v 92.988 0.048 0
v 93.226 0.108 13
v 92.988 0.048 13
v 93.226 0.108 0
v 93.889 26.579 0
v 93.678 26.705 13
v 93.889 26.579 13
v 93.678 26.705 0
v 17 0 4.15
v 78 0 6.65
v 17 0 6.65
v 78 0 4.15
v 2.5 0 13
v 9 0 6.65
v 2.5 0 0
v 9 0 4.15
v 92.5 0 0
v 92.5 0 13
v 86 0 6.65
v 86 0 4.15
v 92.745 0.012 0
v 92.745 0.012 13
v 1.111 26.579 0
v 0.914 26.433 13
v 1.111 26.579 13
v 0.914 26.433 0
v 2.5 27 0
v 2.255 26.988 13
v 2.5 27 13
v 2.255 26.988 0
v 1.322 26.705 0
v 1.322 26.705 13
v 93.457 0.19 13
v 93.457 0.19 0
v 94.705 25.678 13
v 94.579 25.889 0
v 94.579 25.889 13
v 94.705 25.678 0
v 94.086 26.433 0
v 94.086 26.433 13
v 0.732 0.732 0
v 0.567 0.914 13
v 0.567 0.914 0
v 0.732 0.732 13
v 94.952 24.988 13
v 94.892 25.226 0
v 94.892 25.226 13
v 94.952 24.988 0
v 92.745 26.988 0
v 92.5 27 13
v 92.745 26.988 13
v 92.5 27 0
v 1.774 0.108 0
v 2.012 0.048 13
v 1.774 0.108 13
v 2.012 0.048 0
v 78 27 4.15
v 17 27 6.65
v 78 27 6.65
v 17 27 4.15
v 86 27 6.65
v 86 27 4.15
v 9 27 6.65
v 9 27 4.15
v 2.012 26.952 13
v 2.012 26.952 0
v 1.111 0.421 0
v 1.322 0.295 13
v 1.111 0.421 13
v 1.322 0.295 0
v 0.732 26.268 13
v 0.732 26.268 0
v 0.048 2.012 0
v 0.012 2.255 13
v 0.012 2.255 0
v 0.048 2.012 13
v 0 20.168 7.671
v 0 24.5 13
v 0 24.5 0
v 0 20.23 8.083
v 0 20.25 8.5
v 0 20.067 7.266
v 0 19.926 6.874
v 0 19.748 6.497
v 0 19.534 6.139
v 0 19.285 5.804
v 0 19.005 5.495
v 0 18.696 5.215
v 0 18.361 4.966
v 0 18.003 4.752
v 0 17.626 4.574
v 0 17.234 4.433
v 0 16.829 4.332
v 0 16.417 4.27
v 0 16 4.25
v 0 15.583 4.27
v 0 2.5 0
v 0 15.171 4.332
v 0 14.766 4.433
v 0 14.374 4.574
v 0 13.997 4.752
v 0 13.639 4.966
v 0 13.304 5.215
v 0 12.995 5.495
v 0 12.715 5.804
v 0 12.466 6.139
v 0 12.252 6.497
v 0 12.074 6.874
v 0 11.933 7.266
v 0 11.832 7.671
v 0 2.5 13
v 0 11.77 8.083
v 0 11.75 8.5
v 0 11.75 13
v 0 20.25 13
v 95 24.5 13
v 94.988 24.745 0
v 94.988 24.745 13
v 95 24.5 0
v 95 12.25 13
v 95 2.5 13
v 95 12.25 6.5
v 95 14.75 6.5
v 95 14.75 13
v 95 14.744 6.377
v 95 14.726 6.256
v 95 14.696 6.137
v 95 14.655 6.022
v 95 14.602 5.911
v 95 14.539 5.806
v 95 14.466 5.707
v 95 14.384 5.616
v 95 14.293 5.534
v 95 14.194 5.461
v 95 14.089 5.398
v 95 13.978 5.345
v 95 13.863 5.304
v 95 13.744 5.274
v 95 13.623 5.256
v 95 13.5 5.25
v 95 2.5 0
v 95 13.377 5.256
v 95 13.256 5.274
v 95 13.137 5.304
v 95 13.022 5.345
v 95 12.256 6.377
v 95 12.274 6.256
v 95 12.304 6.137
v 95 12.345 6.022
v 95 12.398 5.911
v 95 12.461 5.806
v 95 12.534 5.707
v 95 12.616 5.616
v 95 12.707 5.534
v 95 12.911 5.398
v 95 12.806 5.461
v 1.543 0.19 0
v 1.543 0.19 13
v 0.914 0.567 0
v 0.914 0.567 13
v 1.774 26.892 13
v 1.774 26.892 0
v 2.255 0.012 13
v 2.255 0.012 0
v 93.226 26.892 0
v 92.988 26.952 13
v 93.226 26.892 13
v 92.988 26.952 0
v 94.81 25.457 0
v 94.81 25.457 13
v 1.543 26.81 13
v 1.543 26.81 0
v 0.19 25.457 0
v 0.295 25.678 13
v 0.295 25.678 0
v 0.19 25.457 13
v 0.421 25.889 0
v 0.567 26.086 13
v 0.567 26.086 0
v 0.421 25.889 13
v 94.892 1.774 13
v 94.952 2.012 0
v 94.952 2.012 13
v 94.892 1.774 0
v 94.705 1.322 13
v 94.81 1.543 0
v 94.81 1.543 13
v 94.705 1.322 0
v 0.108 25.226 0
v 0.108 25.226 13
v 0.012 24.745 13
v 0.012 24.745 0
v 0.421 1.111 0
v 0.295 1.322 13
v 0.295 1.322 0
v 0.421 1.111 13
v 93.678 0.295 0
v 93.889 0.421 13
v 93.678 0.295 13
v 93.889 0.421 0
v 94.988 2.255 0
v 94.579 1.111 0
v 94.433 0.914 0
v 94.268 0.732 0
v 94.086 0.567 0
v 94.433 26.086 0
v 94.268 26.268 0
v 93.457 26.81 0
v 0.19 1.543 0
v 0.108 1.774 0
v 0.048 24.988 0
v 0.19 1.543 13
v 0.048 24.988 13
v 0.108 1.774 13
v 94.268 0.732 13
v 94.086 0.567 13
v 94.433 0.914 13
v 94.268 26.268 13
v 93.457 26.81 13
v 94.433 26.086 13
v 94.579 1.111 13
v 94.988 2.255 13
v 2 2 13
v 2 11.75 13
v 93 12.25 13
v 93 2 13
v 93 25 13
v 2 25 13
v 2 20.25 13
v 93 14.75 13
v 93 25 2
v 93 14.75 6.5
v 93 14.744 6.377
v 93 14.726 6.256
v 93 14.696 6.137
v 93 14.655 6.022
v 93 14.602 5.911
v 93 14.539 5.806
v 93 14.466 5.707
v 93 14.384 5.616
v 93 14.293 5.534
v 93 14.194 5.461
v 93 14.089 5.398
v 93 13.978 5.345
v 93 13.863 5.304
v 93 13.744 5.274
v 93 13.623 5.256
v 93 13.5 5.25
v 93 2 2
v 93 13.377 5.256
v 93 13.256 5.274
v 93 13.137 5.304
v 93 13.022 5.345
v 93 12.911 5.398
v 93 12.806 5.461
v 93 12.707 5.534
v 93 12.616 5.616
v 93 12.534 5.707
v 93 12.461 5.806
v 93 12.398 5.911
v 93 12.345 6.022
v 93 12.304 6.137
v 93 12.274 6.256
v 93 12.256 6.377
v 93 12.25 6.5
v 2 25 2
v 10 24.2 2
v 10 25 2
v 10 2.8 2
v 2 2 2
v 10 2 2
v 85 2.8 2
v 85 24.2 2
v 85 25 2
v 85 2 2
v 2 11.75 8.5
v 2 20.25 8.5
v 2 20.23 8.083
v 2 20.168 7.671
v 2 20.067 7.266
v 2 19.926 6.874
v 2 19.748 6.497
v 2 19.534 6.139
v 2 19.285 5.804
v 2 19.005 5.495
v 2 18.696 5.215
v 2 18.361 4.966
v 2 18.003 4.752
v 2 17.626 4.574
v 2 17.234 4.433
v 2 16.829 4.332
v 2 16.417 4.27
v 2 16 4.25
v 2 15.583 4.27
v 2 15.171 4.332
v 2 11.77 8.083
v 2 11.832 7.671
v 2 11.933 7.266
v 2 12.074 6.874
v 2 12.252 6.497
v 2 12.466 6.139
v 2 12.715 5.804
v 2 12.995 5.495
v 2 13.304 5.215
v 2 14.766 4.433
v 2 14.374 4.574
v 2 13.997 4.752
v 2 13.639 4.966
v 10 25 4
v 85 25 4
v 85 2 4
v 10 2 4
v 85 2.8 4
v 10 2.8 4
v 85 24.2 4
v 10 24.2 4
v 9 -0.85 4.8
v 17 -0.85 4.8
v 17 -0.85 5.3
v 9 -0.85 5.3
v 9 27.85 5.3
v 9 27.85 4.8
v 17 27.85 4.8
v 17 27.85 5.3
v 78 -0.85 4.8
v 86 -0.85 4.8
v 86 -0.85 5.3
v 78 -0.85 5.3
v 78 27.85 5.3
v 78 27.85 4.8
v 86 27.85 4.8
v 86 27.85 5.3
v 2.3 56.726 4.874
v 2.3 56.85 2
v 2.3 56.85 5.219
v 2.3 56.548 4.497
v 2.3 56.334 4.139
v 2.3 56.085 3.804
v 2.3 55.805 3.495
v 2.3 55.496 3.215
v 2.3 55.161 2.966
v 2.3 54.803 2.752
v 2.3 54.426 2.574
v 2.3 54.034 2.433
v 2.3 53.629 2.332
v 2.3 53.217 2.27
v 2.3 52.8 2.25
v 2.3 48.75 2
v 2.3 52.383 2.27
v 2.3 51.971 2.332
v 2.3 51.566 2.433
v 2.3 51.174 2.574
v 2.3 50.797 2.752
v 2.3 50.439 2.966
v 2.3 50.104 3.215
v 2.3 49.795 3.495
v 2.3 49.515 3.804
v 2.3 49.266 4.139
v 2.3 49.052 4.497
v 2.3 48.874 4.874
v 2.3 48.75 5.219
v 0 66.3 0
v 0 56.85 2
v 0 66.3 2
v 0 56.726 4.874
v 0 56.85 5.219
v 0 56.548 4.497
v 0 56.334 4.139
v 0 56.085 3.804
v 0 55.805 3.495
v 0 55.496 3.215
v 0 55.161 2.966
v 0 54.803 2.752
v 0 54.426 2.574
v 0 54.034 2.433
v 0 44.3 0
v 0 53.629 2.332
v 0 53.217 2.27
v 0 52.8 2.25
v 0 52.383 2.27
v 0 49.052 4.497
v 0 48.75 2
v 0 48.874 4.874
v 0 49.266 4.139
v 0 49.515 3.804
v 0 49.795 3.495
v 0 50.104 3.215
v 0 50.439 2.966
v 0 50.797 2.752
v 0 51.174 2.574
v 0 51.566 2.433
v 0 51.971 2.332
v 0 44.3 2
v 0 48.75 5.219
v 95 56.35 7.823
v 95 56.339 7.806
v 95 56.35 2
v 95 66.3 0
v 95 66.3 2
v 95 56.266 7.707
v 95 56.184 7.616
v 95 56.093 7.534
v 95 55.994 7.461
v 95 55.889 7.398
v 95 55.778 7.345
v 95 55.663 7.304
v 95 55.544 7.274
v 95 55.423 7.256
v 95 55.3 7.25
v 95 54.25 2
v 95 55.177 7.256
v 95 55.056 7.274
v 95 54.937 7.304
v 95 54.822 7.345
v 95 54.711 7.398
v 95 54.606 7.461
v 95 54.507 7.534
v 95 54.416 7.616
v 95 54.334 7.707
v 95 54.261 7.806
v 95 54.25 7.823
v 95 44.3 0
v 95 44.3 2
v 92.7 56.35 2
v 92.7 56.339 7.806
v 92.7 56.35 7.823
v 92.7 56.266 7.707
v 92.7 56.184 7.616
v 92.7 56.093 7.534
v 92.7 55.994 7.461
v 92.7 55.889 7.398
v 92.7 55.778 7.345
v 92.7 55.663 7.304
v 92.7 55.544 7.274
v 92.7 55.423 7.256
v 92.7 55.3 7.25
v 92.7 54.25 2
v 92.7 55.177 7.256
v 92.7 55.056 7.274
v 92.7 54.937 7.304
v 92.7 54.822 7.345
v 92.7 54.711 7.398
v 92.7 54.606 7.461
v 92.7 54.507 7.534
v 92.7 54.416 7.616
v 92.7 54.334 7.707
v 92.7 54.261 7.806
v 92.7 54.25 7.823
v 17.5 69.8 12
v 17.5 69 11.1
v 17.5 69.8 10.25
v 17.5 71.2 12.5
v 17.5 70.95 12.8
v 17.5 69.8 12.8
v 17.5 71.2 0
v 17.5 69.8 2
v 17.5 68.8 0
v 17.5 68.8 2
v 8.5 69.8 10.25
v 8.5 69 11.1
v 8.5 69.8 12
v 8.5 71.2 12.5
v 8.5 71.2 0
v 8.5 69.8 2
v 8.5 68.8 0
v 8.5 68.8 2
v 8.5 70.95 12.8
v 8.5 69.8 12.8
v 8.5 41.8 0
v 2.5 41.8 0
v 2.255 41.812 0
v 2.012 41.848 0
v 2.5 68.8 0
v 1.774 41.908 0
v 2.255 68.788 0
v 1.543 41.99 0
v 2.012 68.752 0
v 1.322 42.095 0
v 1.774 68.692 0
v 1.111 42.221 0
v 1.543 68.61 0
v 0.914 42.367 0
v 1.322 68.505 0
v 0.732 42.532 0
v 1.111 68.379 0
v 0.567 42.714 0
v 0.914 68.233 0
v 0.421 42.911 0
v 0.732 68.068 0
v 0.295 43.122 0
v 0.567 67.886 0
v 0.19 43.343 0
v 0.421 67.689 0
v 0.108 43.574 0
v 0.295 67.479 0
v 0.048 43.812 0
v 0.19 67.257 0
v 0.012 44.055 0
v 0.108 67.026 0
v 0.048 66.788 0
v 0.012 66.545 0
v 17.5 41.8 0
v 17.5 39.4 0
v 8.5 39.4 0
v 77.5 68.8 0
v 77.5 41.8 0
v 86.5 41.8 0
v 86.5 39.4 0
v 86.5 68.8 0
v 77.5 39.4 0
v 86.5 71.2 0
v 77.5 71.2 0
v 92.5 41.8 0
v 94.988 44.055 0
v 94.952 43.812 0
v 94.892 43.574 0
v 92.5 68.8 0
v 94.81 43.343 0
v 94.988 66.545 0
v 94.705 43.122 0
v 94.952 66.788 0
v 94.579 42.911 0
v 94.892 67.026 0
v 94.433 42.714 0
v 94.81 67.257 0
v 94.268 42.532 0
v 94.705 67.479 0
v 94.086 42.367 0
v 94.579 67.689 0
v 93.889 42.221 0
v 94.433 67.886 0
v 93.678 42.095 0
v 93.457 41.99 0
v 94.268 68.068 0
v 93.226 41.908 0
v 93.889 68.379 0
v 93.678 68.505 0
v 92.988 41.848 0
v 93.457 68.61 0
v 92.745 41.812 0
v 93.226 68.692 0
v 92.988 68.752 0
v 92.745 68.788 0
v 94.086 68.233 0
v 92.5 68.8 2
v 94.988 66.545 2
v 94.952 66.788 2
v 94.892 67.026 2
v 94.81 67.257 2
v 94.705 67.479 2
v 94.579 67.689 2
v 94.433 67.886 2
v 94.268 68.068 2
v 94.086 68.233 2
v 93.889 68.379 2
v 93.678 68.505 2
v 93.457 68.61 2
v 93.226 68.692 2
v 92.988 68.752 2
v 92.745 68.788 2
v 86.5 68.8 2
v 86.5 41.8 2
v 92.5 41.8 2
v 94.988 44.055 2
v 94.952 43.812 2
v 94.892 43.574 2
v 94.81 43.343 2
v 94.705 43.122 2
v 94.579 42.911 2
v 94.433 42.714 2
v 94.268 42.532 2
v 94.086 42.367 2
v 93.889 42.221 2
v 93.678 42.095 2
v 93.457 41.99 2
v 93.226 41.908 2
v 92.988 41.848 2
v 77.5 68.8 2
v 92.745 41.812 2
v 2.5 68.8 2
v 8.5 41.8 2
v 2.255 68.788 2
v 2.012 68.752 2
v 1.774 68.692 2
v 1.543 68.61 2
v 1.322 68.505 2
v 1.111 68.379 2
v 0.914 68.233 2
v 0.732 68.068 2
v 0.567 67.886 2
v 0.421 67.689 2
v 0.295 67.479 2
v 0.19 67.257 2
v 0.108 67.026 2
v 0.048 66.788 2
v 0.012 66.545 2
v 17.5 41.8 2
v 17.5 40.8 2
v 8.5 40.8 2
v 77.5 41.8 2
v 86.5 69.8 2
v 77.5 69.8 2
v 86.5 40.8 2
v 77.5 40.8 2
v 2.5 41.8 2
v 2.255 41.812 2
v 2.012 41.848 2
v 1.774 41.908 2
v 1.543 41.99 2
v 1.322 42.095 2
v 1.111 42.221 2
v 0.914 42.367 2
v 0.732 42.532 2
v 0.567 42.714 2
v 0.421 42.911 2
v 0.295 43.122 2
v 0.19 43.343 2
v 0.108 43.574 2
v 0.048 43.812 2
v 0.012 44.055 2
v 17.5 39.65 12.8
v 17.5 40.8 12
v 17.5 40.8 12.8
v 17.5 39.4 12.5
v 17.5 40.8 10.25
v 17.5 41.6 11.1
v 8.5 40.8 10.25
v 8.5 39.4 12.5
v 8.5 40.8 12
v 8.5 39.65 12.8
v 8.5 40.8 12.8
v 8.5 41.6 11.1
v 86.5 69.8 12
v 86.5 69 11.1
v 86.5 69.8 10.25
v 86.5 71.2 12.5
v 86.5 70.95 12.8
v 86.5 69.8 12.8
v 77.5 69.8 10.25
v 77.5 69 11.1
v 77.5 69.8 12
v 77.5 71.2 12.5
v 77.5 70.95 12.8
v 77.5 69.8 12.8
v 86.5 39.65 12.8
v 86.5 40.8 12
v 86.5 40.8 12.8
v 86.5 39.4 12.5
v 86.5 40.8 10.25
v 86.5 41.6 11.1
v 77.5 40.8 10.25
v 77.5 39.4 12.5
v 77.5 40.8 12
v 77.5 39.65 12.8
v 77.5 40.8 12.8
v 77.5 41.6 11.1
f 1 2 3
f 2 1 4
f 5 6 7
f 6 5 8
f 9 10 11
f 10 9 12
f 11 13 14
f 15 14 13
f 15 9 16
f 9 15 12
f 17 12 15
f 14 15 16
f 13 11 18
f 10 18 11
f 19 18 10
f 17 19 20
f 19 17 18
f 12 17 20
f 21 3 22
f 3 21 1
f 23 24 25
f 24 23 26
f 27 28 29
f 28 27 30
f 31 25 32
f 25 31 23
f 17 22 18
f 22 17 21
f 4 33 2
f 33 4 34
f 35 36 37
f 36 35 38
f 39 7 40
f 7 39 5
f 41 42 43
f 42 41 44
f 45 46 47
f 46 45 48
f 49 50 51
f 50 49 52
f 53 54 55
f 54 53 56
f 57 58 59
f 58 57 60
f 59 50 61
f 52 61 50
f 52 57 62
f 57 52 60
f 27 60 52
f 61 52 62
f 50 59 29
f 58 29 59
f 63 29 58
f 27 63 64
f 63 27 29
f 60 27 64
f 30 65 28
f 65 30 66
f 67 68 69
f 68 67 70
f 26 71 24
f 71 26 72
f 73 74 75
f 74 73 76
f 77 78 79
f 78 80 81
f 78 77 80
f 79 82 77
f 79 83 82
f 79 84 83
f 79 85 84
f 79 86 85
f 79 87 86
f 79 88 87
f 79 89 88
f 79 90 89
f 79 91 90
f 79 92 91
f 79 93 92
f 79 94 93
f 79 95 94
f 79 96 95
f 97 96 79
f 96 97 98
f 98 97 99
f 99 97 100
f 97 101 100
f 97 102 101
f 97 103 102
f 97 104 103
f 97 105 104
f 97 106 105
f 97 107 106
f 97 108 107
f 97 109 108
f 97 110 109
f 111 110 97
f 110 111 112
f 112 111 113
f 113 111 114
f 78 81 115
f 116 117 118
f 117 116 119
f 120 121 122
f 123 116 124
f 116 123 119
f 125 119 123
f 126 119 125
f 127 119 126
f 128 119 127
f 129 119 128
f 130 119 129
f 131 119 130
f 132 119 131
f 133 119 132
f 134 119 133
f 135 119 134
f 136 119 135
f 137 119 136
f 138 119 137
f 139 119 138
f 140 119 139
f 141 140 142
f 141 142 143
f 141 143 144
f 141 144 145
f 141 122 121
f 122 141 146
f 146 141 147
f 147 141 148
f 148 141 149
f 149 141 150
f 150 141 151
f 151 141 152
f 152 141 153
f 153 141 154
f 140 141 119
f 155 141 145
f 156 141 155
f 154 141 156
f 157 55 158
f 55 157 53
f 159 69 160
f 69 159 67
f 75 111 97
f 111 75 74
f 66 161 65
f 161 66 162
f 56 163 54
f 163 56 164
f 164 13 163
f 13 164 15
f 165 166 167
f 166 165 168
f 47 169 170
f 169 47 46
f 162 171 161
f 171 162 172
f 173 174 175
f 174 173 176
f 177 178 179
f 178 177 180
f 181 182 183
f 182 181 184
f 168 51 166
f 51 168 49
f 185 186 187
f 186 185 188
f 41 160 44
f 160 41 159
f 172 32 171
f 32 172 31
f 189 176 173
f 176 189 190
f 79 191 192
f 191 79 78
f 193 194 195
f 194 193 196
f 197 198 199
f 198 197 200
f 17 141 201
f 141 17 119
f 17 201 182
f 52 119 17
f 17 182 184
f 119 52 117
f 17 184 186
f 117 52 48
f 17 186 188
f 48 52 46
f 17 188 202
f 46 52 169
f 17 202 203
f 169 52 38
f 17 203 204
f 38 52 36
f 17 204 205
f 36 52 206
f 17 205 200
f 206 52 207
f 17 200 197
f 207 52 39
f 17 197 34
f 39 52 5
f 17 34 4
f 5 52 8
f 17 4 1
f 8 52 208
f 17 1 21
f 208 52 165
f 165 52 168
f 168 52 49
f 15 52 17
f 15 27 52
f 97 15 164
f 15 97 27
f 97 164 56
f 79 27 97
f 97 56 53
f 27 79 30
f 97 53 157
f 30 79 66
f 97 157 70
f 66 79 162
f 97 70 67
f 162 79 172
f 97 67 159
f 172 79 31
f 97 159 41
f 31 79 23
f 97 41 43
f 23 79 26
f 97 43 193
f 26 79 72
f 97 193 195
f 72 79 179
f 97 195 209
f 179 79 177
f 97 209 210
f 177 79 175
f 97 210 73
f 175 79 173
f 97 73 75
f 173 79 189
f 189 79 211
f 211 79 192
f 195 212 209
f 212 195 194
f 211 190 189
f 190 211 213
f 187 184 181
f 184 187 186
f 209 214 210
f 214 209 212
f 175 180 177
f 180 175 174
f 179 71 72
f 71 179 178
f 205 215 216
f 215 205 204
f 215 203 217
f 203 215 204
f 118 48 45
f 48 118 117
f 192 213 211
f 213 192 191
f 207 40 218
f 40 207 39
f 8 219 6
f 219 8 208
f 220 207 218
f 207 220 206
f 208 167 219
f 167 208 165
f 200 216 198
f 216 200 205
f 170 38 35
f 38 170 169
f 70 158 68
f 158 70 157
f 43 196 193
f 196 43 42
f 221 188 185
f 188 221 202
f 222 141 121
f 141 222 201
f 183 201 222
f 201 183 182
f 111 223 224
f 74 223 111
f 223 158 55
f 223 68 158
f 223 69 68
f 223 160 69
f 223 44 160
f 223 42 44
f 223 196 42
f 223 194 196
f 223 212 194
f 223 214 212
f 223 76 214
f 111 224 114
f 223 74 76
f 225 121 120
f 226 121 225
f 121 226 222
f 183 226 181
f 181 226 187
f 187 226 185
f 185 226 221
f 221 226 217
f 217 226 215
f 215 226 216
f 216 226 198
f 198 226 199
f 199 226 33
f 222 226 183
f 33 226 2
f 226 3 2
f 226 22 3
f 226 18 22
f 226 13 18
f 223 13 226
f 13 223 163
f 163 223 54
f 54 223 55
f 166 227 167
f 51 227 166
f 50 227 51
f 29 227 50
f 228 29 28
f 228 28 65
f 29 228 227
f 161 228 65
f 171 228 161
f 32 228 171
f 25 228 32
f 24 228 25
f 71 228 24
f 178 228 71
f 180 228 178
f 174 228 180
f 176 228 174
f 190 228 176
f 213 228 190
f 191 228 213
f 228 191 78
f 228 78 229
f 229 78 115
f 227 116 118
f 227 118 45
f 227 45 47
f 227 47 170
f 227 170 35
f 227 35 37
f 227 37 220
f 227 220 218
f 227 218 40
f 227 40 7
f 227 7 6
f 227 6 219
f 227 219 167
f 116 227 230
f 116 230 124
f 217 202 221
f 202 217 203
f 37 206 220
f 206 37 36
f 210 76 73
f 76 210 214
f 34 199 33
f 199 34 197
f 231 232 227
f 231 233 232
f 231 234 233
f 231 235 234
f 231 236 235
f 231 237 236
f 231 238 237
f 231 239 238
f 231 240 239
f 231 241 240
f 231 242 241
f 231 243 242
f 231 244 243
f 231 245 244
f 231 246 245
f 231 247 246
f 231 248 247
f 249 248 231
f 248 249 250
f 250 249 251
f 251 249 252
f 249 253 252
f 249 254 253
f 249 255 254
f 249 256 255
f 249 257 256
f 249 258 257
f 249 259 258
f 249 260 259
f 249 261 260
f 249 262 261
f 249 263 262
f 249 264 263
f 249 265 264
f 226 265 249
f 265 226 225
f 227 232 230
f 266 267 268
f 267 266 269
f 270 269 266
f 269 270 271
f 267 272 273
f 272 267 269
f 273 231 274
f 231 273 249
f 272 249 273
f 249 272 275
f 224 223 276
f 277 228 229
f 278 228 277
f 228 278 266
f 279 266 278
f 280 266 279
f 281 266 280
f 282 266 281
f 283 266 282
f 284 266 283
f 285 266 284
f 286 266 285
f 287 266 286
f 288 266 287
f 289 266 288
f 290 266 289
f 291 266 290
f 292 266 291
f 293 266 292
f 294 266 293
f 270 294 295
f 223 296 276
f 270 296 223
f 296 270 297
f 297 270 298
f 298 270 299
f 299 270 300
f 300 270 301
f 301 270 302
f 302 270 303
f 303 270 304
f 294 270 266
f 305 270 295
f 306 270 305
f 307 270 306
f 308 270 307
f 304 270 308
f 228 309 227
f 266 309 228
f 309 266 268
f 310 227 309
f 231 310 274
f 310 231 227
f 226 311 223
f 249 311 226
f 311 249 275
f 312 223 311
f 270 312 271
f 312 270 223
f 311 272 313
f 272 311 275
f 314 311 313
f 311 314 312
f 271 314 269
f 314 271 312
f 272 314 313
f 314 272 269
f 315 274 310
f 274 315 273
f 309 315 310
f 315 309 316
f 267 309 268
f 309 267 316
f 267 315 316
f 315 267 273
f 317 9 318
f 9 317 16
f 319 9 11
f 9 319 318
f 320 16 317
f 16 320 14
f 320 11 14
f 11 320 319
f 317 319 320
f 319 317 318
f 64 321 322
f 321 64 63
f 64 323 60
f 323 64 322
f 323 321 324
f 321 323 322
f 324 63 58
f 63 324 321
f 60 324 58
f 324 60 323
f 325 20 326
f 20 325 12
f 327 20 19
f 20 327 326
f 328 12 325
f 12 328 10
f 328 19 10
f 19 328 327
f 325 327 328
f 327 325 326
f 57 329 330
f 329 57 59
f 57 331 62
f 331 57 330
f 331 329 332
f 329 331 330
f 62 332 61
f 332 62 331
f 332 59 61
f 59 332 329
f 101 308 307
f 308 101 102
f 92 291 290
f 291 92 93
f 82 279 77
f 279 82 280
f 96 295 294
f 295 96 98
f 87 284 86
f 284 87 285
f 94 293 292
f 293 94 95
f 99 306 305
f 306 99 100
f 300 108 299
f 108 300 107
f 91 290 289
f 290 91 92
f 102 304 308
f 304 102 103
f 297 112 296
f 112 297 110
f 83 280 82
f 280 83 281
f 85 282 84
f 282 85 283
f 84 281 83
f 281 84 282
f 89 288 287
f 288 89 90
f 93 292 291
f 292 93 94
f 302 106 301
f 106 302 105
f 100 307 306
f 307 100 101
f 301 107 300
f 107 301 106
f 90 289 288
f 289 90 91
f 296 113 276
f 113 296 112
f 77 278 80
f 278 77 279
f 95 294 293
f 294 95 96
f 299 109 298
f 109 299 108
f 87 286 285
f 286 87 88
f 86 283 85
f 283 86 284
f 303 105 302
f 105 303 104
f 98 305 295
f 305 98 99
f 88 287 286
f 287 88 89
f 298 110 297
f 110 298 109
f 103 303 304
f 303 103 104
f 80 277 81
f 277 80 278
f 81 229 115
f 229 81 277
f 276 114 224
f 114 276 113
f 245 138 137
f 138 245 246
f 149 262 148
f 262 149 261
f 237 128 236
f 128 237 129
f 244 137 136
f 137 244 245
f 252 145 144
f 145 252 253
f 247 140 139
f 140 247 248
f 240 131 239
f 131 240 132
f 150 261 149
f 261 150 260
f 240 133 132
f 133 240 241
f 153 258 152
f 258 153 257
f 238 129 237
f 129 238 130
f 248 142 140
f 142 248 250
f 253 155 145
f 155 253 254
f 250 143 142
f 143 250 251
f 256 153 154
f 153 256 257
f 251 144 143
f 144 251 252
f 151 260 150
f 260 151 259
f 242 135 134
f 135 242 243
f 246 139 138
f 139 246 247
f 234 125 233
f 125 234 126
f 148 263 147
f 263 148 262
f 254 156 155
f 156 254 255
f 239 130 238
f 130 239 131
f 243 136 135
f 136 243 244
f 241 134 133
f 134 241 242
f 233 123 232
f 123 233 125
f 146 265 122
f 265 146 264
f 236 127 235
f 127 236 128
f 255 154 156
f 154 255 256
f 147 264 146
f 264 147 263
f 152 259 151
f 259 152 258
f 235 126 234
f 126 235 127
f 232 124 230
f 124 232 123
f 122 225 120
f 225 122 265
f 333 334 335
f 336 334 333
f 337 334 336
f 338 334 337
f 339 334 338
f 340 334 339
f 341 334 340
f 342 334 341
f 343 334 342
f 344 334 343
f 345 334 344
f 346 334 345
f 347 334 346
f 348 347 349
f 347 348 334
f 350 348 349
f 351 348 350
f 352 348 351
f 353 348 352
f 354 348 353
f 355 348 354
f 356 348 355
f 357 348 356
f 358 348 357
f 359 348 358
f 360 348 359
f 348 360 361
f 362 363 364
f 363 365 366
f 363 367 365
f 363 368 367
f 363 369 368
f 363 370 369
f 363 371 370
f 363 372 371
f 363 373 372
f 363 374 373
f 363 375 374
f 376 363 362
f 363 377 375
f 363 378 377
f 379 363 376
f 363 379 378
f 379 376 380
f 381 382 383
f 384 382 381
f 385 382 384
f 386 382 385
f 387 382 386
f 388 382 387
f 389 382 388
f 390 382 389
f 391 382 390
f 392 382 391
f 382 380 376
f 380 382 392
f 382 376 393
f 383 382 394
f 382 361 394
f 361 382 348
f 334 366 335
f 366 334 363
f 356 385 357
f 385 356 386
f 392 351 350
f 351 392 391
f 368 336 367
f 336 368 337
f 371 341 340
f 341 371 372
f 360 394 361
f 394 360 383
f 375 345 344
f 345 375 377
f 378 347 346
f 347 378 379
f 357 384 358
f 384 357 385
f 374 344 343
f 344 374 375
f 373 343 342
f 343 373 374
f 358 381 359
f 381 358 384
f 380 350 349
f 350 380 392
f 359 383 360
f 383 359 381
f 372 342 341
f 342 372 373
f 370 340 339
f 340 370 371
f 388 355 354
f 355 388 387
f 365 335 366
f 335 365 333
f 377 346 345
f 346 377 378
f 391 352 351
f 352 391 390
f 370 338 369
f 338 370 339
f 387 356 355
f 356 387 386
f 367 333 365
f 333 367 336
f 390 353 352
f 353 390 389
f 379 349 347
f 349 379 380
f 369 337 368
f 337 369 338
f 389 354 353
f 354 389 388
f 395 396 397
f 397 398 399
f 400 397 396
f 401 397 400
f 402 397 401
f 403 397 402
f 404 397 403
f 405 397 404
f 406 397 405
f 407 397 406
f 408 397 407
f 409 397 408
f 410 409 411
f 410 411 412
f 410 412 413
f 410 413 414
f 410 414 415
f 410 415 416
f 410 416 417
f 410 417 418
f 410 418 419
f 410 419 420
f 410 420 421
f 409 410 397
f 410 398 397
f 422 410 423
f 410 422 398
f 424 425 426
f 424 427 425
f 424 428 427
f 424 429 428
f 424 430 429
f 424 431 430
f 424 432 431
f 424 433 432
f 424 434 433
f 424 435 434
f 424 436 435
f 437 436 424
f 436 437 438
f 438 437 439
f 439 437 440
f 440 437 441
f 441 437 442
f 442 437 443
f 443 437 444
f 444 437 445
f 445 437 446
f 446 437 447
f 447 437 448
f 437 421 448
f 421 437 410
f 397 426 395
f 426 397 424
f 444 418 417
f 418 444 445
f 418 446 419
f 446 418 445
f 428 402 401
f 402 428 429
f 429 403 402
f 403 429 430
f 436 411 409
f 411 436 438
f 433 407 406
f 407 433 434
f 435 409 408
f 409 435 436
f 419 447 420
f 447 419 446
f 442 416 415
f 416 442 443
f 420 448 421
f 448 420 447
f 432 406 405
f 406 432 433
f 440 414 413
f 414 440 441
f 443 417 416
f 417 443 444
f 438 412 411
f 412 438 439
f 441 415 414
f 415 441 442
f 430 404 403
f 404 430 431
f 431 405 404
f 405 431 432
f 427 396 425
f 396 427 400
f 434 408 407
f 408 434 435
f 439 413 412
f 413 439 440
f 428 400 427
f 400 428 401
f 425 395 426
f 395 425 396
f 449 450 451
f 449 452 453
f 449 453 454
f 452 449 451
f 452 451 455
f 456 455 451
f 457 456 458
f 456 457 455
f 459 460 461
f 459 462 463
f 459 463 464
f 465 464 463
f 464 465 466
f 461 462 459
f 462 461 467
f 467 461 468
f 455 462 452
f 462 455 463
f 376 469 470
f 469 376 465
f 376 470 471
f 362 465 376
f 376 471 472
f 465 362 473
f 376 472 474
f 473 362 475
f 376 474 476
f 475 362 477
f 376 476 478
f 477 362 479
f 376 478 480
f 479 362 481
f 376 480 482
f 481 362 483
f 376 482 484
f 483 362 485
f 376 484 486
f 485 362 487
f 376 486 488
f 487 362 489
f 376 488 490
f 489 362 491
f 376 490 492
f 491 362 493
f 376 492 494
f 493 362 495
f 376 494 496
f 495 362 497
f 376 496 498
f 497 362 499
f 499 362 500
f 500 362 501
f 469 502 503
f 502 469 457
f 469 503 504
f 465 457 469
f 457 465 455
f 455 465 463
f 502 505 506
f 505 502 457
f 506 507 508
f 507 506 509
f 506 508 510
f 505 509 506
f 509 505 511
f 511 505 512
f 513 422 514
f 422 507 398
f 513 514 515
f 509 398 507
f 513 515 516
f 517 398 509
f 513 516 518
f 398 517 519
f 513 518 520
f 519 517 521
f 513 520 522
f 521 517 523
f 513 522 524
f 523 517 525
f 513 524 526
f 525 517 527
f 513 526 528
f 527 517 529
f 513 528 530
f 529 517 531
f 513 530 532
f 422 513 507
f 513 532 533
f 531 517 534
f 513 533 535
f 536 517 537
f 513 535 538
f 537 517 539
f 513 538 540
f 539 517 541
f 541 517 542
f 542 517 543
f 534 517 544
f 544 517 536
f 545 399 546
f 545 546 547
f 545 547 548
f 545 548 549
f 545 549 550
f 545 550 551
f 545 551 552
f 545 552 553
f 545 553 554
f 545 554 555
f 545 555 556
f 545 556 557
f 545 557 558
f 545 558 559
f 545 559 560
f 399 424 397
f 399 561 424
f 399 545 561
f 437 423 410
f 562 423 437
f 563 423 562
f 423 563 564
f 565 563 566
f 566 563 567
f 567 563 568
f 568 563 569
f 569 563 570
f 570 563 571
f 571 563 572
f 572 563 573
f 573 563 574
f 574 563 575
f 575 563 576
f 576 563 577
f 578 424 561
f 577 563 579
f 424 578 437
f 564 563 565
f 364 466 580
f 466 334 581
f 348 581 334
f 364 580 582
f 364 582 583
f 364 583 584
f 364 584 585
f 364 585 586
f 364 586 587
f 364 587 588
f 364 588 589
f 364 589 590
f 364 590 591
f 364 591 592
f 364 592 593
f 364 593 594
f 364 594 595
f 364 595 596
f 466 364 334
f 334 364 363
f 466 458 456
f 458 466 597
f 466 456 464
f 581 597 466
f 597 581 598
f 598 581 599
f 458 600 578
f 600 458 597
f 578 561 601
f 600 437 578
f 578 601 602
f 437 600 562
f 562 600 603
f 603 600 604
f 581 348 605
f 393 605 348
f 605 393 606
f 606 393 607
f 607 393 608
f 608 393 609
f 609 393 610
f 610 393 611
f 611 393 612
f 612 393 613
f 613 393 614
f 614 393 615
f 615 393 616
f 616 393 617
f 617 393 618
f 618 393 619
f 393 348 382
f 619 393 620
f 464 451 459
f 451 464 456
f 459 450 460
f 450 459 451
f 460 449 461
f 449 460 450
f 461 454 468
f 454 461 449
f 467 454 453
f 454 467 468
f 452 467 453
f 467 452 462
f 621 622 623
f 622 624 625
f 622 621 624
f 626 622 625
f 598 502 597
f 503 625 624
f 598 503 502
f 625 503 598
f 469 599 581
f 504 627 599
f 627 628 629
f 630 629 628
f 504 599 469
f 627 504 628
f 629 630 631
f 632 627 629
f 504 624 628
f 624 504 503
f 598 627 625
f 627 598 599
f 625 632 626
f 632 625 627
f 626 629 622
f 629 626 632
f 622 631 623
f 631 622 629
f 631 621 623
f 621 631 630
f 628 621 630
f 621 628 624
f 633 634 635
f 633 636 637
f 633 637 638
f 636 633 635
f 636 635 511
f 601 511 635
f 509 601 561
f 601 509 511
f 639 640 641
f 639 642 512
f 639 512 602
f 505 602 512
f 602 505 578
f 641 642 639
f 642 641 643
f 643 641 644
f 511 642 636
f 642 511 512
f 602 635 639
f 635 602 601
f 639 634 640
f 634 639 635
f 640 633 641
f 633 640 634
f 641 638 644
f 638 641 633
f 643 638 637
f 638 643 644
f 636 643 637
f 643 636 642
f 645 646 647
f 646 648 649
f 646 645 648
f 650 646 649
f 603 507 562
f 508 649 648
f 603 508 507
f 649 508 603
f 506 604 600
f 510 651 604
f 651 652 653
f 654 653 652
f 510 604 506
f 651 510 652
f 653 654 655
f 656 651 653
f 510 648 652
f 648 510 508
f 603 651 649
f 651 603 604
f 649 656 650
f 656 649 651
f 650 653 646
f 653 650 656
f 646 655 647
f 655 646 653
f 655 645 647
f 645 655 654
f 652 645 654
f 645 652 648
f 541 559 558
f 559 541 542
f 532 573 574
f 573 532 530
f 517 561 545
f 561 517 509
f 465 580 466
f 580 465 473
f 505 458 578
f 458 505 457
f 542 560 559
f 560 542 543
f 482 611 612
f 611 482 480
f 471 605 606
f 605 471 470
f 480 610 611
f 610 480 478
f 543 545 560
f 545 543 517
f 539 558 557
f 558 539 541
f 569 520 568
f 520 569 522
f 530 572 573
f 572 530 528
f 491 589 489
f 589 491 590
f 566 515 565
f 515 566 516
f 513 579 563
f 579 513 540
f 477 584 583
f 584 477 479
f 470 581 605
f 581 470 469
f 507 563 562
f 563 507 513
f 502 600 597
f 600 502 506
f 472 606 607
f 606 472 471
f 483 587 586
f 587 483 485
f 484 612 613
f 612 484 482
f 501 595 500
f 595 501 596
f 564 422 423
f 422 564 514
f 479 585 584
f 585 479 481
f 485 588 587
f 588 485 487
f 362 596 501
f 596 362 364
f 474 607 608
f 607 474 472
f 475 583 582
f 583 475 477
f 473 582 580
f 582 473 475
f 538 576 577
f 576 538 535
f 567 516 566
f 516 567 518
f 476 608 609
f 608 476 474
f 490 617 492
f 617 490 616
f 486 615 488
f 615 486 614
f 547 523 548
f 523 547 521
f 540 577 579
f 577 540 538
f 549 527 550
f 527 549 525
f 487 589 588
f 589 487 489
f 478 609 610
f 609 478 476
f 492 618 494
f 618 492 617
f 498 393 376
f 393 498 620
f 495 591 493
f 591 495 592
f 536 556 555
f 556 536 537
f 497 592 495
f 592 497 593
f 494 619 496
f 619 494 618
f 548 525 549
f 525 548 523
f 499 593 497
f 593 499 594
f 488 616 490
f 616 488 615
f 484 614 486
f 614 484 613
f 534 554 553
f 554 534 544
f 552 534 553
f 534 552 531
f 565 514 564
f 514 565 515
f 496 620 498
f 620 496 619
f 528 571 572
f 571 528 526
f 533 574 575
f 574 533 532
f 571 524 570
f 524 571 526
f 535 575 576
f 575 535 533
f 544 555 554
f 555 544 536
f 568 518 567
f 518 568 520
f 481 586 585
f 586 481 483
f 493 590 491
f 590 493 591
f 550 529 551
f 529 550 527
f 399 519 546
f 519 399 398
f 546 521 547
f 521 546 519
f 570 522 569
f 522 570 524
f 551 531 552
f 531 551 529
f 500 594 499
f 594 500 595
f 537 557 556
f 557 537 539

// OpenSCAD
// Connection board enclosure | external snap-fit revision | all dimensions in mm
// Open in OpenSCAD. Select part: layout, base, lid, assembled.
// Both cable slots open upwards; matching lid tongues close them.
// The lid is printed upside down (exterior face on the print bed).

/* [Output] */
part = "layout"; // [layout,base,lid,assembled,interference]
$fn = 64;

/* [Enclosure] */
internal_length = 91; // 90 mm board plus 1 mm total clearance
internal_width = 23;
internal_height = 11;
wall = 2;
floor_thickness = 2;
lid_thickness = 2;
corner_radius = 2.5;

/* [Left cable] */
left_diameter = 8;
left_clearance = 0.5; // added to diameter, not per side
left_y = 14; // centre from cavity long edge; 10 mm + 8/2
left_z = 6.5; // centre above inside floor; estimated, adjust to suit

/* [Right cable] */
right_diameter = 2;
right_clearance = 0.5;
right_y = 11.5; // centre from same cavity long edge; assumed centred
right_z = 4.5; // centre above inside floor; estimated

/* [Board support] */
rail_height = 2; // board underside above inside floor; estimated
rail_inset = 0.8; // rail extends this far into cavity
rail_end_gap = 8; // avoid ties and wires at ends

/* [External snap clips] */
// Four outside spring arms engage raised catches on the base.
// No screws, holes, inserts or loss of internal clearance.
clip_end_offset = 13;
clip_width = 9;
clip_arm_thickness = 1.4;
clip_wall_gap = 1.00; // free clearance between arm and body
clip_tip_z = 2.2; // bottom of arm, above outside base floor
clip_hook_depth = 0.80; // inward projection from arm inner face
clip_hook_start_z = 3.0; // start of lead-in ramp
clip_hook_peak_z = 3.9;
clip_hook_return_z = 4.75; // printable upper hook slope
catch_projection = 0.85;
catch_bottom_z = 4.15;
catch_lower_ramp = 0.65;
catch_flat_height = 0.50;
catch_upper_ramp = 1.35;
catch_side_clearance = 0.5; // each end of catch narrower than arm
clip_root_overlap = 1.0; // how far lid bridge overlaps body
slot_fit = 0.20; // clearance each side of lid tongue
plug_inside_extension = 0.30;
print_spacing = 10;

/* [Hidden] */
L = internal_length + 2*wall;
W = internal_width + 2*wall;
B = floor_thickness + internal_height;
H = B + lid_thickness;
eps = 0.02;
left_r = (left_diameter+left_clearance)/2;
right_r = (right_diameter+right_clearance)/2;

assert(wall >= 1.5 && floor_thickness > 0 && lid_thickness > 0);
assert(corner_radius >= 0 && corner_radius <= wall+0.5);
assert(rail_height > 0 && rail_height < internal_height);
assert(rail_end_gap >= 0 && 2*rail_end_gap < internal_length);
assert(clip_end_offset-clip_width/2 > corner_radius &&
       2*clip_end_offset+clip_width < L);
assert(clip_arm_thickness > 0 && clip_wall_gap > clip_hook_depth && clip_hook_depth > 0);
assert(catch_projection <= clip_wall_gap &&
       catch_projection > clip_wall_gap-clip_hook_depth,
       "Catch must overlap hook but clear the relaxed arm");
assert(clip_tip_z >= 0 && clip_tip_z < clip_hook_start_z &&
       clip_hook_start_z < clip_hook_peak_z && clip_hook_peak_z < clip_hook_return_z);
assert(clip_hook_return_z < B-2 && catch_bottom_z > clip_hook_peak_z);
assert(catch_lower_ramp > 0 && catch_flat_height > 0 && catch_upper_ramp > 0);
assert(catch_bottom_z+catch_lower_ramp+catch_flat_height+catch_upper_ramp < B);
assert(clip_width > 2*catch_side_clearance && clip_root_overlap > 0 && clip_root_overlap <= wall);
// Check that relaxed hook and catch do not intersect at full closure.
// Both profiles are linear in the only possible overlap region.
assert(clip_hook_return_z <= catch_bottom_z ||
       (catch_projection/catch_lower_ramp)*
       max(0,min(catch_lower_ramp,clip_hook_return_z-catch_bottom_z)) <= clip_wall_gap,
       "Adjust hook/catch heights to avoid assembled interference");
for (c = [[left_y,left_z,left_r],[right_y,right_z,right_r]]) {
    assert(c[0]-c[2] > 0 && c[0]+c[2] < internal_width,
        "Cable opening must fit inside cavity width");
    assert(c[1]-c[2] >= 0 && c[1]+c[2] <= internal_height,
        "Cable opening must fit within internal height; adjust cable_z");
    assert(c[2] > slot_fit);
}

module rounded_body(h) {
    linear_extrude(height=h)
        if (corner_radius > 0)
            translate([corner_radius,corner_radius])
                offset(r=corner_radius)
                    square([L-2*corner_radius,W-2*corner_radius]);
        else square([L,W]);
}

// Profile coordinates are [outward distance from side wall, assembled Z].
// Extrusion runs along X; mirror the near-side mechanism onto far side.
module side_profile(x, width, points) {
    translate([x+width/2,0,0])
        rotate([0,-90,0]) rotate([0,0,-90])
            linear_extrude(height=width,convexity=4) polygon(points);
}
module side_pair() {
    children();
    translate([0,W,0]) mirror([0,1,0]) children();
}
module base_catches() {
    for(x=[clip_end_offset,L-clip_end_offset]) side_pair()
        side_profile(x,clip_width-2*catch_side_clearance,[
            [-eps,catch_bottom_z],
            [0,catch_bottom_z],
            [catch_projection,catch_bottom_z+catch_lower_ramp],
            [catch_projection,catch_bottom_z+catch_lower_ramp+catch_flat_height],
            [0,catch_bottom_z+catch_lower_ramp+catch_flat_height+catch_upper_ramp],
            [-eps,catch_bottom_z+catch_lower_ramp+catch_flat_height+catch_upper_ramp]
        ]);
}
module lid_clips() {
    u=clip_wall_gap;
    o=u+clip_arm_thickness;
    for(x=[clip_end_offset,L-clip_end_offset]) side_pair()
        side_profile(x,clip_width,[
            [-clip_root_overlap,B],
            [u,B],
            [u,clip_hook_return_z],
            [u-clip_hook_depth,clip_hook_peak_z],
            [u,clip_hook_start_z],
            [u,clip_tip_z],
            [o-0.25,clip_tip_z],
            [o,clip_tip_z+0.3],
            [o,H],
            [-clip_root_overlap,H]
        ]);
}

// X-axis cylinder for cable opening.
module x_cylinder(x,y,z,len,r) {
    translate([x,y,z]) rotate([0,90,0]) cylinder(h=len,r=r);
}

// A U-shaped cut, open to the top of the base.
module cable_slot(left,y,z,r) {
    x = left ? -eps : L-wall-eps;
    yy = wall+y;
    zz = floor_thickness+z;
    len = wall+2*eps;
    union() {
        x_cylinder(x,yy,zz,len,r);
        translate([x,yy-r,zz]) cube([len,2*r,B-zz+eps]);
    }
}

// Lid tongue drops into the U-slot, with a concave lower edge.
// This traps the cable in a round opening without clamping it.
module cable_tongue(left,y,z,r) {
    x = left ? 0 : L-wall-plug_inside_extension;
    len = wall+plug_inside_extension;
    yy = wall+y;
    zz = floor_thickness+z;
    difference() {
        translate([x,yy-r+slot_fit,zz])
            cube([len,2*(r-slot_fit),B-zz+eps]);
        x_cylinder(x-eps,yy,zz,len+2*eps,r);
    }
}

module support_rails() {
    for(y=[wall-eps,W-wall-rail_inset])
        translate([wall+rail_end_gap,y,floor_thickness-eps])
            cube([internal_length-2*rail_end_gap,
                  rail_inset+eps,rail_height+eps]);
}

module base() {
    difference() {
        union() {
            difference() {
                rounded_body(B);
                translate([wall,wall,floor_thickness])
                    cube([internal_length,internal_width,internal_height+eps]);
            }
            support_rails();
            base_catches();
        }
        cable_slot(true,left_y,left_z,left_r);
        cable_slot(false,right_y,right_z,right_r);
    }
}

module lid_assembled() {
    union() {
        translate([0,0,B]) rounded_body(lid_thickness);
        cable_tongue(true,left_y,left_z,left_r);
        cable_tongue(false,right_y,right_z,right_r);
        lid_clips();
    }
}

module lid_print() {
    translate([0,W,H]) rotate([180,0,0]) lid_assembled();
}

if(part=="base") base();
else if(part=="lid") lid_print();
else if(part=="assembled") {
    color("SlateGray") base();
    color("LightSteelBlue",0.65) lid_assembled();
}
else if(part=="interference") intersection() { base(); lid_assembled(); }
else if(part=="layout") {
    base();
    translate([0,W+2*(clip_wall_gap+clip_arm_thickness)+print_spacing,0]) lid_print();
}
else assert(false,"Unknown part selection");
